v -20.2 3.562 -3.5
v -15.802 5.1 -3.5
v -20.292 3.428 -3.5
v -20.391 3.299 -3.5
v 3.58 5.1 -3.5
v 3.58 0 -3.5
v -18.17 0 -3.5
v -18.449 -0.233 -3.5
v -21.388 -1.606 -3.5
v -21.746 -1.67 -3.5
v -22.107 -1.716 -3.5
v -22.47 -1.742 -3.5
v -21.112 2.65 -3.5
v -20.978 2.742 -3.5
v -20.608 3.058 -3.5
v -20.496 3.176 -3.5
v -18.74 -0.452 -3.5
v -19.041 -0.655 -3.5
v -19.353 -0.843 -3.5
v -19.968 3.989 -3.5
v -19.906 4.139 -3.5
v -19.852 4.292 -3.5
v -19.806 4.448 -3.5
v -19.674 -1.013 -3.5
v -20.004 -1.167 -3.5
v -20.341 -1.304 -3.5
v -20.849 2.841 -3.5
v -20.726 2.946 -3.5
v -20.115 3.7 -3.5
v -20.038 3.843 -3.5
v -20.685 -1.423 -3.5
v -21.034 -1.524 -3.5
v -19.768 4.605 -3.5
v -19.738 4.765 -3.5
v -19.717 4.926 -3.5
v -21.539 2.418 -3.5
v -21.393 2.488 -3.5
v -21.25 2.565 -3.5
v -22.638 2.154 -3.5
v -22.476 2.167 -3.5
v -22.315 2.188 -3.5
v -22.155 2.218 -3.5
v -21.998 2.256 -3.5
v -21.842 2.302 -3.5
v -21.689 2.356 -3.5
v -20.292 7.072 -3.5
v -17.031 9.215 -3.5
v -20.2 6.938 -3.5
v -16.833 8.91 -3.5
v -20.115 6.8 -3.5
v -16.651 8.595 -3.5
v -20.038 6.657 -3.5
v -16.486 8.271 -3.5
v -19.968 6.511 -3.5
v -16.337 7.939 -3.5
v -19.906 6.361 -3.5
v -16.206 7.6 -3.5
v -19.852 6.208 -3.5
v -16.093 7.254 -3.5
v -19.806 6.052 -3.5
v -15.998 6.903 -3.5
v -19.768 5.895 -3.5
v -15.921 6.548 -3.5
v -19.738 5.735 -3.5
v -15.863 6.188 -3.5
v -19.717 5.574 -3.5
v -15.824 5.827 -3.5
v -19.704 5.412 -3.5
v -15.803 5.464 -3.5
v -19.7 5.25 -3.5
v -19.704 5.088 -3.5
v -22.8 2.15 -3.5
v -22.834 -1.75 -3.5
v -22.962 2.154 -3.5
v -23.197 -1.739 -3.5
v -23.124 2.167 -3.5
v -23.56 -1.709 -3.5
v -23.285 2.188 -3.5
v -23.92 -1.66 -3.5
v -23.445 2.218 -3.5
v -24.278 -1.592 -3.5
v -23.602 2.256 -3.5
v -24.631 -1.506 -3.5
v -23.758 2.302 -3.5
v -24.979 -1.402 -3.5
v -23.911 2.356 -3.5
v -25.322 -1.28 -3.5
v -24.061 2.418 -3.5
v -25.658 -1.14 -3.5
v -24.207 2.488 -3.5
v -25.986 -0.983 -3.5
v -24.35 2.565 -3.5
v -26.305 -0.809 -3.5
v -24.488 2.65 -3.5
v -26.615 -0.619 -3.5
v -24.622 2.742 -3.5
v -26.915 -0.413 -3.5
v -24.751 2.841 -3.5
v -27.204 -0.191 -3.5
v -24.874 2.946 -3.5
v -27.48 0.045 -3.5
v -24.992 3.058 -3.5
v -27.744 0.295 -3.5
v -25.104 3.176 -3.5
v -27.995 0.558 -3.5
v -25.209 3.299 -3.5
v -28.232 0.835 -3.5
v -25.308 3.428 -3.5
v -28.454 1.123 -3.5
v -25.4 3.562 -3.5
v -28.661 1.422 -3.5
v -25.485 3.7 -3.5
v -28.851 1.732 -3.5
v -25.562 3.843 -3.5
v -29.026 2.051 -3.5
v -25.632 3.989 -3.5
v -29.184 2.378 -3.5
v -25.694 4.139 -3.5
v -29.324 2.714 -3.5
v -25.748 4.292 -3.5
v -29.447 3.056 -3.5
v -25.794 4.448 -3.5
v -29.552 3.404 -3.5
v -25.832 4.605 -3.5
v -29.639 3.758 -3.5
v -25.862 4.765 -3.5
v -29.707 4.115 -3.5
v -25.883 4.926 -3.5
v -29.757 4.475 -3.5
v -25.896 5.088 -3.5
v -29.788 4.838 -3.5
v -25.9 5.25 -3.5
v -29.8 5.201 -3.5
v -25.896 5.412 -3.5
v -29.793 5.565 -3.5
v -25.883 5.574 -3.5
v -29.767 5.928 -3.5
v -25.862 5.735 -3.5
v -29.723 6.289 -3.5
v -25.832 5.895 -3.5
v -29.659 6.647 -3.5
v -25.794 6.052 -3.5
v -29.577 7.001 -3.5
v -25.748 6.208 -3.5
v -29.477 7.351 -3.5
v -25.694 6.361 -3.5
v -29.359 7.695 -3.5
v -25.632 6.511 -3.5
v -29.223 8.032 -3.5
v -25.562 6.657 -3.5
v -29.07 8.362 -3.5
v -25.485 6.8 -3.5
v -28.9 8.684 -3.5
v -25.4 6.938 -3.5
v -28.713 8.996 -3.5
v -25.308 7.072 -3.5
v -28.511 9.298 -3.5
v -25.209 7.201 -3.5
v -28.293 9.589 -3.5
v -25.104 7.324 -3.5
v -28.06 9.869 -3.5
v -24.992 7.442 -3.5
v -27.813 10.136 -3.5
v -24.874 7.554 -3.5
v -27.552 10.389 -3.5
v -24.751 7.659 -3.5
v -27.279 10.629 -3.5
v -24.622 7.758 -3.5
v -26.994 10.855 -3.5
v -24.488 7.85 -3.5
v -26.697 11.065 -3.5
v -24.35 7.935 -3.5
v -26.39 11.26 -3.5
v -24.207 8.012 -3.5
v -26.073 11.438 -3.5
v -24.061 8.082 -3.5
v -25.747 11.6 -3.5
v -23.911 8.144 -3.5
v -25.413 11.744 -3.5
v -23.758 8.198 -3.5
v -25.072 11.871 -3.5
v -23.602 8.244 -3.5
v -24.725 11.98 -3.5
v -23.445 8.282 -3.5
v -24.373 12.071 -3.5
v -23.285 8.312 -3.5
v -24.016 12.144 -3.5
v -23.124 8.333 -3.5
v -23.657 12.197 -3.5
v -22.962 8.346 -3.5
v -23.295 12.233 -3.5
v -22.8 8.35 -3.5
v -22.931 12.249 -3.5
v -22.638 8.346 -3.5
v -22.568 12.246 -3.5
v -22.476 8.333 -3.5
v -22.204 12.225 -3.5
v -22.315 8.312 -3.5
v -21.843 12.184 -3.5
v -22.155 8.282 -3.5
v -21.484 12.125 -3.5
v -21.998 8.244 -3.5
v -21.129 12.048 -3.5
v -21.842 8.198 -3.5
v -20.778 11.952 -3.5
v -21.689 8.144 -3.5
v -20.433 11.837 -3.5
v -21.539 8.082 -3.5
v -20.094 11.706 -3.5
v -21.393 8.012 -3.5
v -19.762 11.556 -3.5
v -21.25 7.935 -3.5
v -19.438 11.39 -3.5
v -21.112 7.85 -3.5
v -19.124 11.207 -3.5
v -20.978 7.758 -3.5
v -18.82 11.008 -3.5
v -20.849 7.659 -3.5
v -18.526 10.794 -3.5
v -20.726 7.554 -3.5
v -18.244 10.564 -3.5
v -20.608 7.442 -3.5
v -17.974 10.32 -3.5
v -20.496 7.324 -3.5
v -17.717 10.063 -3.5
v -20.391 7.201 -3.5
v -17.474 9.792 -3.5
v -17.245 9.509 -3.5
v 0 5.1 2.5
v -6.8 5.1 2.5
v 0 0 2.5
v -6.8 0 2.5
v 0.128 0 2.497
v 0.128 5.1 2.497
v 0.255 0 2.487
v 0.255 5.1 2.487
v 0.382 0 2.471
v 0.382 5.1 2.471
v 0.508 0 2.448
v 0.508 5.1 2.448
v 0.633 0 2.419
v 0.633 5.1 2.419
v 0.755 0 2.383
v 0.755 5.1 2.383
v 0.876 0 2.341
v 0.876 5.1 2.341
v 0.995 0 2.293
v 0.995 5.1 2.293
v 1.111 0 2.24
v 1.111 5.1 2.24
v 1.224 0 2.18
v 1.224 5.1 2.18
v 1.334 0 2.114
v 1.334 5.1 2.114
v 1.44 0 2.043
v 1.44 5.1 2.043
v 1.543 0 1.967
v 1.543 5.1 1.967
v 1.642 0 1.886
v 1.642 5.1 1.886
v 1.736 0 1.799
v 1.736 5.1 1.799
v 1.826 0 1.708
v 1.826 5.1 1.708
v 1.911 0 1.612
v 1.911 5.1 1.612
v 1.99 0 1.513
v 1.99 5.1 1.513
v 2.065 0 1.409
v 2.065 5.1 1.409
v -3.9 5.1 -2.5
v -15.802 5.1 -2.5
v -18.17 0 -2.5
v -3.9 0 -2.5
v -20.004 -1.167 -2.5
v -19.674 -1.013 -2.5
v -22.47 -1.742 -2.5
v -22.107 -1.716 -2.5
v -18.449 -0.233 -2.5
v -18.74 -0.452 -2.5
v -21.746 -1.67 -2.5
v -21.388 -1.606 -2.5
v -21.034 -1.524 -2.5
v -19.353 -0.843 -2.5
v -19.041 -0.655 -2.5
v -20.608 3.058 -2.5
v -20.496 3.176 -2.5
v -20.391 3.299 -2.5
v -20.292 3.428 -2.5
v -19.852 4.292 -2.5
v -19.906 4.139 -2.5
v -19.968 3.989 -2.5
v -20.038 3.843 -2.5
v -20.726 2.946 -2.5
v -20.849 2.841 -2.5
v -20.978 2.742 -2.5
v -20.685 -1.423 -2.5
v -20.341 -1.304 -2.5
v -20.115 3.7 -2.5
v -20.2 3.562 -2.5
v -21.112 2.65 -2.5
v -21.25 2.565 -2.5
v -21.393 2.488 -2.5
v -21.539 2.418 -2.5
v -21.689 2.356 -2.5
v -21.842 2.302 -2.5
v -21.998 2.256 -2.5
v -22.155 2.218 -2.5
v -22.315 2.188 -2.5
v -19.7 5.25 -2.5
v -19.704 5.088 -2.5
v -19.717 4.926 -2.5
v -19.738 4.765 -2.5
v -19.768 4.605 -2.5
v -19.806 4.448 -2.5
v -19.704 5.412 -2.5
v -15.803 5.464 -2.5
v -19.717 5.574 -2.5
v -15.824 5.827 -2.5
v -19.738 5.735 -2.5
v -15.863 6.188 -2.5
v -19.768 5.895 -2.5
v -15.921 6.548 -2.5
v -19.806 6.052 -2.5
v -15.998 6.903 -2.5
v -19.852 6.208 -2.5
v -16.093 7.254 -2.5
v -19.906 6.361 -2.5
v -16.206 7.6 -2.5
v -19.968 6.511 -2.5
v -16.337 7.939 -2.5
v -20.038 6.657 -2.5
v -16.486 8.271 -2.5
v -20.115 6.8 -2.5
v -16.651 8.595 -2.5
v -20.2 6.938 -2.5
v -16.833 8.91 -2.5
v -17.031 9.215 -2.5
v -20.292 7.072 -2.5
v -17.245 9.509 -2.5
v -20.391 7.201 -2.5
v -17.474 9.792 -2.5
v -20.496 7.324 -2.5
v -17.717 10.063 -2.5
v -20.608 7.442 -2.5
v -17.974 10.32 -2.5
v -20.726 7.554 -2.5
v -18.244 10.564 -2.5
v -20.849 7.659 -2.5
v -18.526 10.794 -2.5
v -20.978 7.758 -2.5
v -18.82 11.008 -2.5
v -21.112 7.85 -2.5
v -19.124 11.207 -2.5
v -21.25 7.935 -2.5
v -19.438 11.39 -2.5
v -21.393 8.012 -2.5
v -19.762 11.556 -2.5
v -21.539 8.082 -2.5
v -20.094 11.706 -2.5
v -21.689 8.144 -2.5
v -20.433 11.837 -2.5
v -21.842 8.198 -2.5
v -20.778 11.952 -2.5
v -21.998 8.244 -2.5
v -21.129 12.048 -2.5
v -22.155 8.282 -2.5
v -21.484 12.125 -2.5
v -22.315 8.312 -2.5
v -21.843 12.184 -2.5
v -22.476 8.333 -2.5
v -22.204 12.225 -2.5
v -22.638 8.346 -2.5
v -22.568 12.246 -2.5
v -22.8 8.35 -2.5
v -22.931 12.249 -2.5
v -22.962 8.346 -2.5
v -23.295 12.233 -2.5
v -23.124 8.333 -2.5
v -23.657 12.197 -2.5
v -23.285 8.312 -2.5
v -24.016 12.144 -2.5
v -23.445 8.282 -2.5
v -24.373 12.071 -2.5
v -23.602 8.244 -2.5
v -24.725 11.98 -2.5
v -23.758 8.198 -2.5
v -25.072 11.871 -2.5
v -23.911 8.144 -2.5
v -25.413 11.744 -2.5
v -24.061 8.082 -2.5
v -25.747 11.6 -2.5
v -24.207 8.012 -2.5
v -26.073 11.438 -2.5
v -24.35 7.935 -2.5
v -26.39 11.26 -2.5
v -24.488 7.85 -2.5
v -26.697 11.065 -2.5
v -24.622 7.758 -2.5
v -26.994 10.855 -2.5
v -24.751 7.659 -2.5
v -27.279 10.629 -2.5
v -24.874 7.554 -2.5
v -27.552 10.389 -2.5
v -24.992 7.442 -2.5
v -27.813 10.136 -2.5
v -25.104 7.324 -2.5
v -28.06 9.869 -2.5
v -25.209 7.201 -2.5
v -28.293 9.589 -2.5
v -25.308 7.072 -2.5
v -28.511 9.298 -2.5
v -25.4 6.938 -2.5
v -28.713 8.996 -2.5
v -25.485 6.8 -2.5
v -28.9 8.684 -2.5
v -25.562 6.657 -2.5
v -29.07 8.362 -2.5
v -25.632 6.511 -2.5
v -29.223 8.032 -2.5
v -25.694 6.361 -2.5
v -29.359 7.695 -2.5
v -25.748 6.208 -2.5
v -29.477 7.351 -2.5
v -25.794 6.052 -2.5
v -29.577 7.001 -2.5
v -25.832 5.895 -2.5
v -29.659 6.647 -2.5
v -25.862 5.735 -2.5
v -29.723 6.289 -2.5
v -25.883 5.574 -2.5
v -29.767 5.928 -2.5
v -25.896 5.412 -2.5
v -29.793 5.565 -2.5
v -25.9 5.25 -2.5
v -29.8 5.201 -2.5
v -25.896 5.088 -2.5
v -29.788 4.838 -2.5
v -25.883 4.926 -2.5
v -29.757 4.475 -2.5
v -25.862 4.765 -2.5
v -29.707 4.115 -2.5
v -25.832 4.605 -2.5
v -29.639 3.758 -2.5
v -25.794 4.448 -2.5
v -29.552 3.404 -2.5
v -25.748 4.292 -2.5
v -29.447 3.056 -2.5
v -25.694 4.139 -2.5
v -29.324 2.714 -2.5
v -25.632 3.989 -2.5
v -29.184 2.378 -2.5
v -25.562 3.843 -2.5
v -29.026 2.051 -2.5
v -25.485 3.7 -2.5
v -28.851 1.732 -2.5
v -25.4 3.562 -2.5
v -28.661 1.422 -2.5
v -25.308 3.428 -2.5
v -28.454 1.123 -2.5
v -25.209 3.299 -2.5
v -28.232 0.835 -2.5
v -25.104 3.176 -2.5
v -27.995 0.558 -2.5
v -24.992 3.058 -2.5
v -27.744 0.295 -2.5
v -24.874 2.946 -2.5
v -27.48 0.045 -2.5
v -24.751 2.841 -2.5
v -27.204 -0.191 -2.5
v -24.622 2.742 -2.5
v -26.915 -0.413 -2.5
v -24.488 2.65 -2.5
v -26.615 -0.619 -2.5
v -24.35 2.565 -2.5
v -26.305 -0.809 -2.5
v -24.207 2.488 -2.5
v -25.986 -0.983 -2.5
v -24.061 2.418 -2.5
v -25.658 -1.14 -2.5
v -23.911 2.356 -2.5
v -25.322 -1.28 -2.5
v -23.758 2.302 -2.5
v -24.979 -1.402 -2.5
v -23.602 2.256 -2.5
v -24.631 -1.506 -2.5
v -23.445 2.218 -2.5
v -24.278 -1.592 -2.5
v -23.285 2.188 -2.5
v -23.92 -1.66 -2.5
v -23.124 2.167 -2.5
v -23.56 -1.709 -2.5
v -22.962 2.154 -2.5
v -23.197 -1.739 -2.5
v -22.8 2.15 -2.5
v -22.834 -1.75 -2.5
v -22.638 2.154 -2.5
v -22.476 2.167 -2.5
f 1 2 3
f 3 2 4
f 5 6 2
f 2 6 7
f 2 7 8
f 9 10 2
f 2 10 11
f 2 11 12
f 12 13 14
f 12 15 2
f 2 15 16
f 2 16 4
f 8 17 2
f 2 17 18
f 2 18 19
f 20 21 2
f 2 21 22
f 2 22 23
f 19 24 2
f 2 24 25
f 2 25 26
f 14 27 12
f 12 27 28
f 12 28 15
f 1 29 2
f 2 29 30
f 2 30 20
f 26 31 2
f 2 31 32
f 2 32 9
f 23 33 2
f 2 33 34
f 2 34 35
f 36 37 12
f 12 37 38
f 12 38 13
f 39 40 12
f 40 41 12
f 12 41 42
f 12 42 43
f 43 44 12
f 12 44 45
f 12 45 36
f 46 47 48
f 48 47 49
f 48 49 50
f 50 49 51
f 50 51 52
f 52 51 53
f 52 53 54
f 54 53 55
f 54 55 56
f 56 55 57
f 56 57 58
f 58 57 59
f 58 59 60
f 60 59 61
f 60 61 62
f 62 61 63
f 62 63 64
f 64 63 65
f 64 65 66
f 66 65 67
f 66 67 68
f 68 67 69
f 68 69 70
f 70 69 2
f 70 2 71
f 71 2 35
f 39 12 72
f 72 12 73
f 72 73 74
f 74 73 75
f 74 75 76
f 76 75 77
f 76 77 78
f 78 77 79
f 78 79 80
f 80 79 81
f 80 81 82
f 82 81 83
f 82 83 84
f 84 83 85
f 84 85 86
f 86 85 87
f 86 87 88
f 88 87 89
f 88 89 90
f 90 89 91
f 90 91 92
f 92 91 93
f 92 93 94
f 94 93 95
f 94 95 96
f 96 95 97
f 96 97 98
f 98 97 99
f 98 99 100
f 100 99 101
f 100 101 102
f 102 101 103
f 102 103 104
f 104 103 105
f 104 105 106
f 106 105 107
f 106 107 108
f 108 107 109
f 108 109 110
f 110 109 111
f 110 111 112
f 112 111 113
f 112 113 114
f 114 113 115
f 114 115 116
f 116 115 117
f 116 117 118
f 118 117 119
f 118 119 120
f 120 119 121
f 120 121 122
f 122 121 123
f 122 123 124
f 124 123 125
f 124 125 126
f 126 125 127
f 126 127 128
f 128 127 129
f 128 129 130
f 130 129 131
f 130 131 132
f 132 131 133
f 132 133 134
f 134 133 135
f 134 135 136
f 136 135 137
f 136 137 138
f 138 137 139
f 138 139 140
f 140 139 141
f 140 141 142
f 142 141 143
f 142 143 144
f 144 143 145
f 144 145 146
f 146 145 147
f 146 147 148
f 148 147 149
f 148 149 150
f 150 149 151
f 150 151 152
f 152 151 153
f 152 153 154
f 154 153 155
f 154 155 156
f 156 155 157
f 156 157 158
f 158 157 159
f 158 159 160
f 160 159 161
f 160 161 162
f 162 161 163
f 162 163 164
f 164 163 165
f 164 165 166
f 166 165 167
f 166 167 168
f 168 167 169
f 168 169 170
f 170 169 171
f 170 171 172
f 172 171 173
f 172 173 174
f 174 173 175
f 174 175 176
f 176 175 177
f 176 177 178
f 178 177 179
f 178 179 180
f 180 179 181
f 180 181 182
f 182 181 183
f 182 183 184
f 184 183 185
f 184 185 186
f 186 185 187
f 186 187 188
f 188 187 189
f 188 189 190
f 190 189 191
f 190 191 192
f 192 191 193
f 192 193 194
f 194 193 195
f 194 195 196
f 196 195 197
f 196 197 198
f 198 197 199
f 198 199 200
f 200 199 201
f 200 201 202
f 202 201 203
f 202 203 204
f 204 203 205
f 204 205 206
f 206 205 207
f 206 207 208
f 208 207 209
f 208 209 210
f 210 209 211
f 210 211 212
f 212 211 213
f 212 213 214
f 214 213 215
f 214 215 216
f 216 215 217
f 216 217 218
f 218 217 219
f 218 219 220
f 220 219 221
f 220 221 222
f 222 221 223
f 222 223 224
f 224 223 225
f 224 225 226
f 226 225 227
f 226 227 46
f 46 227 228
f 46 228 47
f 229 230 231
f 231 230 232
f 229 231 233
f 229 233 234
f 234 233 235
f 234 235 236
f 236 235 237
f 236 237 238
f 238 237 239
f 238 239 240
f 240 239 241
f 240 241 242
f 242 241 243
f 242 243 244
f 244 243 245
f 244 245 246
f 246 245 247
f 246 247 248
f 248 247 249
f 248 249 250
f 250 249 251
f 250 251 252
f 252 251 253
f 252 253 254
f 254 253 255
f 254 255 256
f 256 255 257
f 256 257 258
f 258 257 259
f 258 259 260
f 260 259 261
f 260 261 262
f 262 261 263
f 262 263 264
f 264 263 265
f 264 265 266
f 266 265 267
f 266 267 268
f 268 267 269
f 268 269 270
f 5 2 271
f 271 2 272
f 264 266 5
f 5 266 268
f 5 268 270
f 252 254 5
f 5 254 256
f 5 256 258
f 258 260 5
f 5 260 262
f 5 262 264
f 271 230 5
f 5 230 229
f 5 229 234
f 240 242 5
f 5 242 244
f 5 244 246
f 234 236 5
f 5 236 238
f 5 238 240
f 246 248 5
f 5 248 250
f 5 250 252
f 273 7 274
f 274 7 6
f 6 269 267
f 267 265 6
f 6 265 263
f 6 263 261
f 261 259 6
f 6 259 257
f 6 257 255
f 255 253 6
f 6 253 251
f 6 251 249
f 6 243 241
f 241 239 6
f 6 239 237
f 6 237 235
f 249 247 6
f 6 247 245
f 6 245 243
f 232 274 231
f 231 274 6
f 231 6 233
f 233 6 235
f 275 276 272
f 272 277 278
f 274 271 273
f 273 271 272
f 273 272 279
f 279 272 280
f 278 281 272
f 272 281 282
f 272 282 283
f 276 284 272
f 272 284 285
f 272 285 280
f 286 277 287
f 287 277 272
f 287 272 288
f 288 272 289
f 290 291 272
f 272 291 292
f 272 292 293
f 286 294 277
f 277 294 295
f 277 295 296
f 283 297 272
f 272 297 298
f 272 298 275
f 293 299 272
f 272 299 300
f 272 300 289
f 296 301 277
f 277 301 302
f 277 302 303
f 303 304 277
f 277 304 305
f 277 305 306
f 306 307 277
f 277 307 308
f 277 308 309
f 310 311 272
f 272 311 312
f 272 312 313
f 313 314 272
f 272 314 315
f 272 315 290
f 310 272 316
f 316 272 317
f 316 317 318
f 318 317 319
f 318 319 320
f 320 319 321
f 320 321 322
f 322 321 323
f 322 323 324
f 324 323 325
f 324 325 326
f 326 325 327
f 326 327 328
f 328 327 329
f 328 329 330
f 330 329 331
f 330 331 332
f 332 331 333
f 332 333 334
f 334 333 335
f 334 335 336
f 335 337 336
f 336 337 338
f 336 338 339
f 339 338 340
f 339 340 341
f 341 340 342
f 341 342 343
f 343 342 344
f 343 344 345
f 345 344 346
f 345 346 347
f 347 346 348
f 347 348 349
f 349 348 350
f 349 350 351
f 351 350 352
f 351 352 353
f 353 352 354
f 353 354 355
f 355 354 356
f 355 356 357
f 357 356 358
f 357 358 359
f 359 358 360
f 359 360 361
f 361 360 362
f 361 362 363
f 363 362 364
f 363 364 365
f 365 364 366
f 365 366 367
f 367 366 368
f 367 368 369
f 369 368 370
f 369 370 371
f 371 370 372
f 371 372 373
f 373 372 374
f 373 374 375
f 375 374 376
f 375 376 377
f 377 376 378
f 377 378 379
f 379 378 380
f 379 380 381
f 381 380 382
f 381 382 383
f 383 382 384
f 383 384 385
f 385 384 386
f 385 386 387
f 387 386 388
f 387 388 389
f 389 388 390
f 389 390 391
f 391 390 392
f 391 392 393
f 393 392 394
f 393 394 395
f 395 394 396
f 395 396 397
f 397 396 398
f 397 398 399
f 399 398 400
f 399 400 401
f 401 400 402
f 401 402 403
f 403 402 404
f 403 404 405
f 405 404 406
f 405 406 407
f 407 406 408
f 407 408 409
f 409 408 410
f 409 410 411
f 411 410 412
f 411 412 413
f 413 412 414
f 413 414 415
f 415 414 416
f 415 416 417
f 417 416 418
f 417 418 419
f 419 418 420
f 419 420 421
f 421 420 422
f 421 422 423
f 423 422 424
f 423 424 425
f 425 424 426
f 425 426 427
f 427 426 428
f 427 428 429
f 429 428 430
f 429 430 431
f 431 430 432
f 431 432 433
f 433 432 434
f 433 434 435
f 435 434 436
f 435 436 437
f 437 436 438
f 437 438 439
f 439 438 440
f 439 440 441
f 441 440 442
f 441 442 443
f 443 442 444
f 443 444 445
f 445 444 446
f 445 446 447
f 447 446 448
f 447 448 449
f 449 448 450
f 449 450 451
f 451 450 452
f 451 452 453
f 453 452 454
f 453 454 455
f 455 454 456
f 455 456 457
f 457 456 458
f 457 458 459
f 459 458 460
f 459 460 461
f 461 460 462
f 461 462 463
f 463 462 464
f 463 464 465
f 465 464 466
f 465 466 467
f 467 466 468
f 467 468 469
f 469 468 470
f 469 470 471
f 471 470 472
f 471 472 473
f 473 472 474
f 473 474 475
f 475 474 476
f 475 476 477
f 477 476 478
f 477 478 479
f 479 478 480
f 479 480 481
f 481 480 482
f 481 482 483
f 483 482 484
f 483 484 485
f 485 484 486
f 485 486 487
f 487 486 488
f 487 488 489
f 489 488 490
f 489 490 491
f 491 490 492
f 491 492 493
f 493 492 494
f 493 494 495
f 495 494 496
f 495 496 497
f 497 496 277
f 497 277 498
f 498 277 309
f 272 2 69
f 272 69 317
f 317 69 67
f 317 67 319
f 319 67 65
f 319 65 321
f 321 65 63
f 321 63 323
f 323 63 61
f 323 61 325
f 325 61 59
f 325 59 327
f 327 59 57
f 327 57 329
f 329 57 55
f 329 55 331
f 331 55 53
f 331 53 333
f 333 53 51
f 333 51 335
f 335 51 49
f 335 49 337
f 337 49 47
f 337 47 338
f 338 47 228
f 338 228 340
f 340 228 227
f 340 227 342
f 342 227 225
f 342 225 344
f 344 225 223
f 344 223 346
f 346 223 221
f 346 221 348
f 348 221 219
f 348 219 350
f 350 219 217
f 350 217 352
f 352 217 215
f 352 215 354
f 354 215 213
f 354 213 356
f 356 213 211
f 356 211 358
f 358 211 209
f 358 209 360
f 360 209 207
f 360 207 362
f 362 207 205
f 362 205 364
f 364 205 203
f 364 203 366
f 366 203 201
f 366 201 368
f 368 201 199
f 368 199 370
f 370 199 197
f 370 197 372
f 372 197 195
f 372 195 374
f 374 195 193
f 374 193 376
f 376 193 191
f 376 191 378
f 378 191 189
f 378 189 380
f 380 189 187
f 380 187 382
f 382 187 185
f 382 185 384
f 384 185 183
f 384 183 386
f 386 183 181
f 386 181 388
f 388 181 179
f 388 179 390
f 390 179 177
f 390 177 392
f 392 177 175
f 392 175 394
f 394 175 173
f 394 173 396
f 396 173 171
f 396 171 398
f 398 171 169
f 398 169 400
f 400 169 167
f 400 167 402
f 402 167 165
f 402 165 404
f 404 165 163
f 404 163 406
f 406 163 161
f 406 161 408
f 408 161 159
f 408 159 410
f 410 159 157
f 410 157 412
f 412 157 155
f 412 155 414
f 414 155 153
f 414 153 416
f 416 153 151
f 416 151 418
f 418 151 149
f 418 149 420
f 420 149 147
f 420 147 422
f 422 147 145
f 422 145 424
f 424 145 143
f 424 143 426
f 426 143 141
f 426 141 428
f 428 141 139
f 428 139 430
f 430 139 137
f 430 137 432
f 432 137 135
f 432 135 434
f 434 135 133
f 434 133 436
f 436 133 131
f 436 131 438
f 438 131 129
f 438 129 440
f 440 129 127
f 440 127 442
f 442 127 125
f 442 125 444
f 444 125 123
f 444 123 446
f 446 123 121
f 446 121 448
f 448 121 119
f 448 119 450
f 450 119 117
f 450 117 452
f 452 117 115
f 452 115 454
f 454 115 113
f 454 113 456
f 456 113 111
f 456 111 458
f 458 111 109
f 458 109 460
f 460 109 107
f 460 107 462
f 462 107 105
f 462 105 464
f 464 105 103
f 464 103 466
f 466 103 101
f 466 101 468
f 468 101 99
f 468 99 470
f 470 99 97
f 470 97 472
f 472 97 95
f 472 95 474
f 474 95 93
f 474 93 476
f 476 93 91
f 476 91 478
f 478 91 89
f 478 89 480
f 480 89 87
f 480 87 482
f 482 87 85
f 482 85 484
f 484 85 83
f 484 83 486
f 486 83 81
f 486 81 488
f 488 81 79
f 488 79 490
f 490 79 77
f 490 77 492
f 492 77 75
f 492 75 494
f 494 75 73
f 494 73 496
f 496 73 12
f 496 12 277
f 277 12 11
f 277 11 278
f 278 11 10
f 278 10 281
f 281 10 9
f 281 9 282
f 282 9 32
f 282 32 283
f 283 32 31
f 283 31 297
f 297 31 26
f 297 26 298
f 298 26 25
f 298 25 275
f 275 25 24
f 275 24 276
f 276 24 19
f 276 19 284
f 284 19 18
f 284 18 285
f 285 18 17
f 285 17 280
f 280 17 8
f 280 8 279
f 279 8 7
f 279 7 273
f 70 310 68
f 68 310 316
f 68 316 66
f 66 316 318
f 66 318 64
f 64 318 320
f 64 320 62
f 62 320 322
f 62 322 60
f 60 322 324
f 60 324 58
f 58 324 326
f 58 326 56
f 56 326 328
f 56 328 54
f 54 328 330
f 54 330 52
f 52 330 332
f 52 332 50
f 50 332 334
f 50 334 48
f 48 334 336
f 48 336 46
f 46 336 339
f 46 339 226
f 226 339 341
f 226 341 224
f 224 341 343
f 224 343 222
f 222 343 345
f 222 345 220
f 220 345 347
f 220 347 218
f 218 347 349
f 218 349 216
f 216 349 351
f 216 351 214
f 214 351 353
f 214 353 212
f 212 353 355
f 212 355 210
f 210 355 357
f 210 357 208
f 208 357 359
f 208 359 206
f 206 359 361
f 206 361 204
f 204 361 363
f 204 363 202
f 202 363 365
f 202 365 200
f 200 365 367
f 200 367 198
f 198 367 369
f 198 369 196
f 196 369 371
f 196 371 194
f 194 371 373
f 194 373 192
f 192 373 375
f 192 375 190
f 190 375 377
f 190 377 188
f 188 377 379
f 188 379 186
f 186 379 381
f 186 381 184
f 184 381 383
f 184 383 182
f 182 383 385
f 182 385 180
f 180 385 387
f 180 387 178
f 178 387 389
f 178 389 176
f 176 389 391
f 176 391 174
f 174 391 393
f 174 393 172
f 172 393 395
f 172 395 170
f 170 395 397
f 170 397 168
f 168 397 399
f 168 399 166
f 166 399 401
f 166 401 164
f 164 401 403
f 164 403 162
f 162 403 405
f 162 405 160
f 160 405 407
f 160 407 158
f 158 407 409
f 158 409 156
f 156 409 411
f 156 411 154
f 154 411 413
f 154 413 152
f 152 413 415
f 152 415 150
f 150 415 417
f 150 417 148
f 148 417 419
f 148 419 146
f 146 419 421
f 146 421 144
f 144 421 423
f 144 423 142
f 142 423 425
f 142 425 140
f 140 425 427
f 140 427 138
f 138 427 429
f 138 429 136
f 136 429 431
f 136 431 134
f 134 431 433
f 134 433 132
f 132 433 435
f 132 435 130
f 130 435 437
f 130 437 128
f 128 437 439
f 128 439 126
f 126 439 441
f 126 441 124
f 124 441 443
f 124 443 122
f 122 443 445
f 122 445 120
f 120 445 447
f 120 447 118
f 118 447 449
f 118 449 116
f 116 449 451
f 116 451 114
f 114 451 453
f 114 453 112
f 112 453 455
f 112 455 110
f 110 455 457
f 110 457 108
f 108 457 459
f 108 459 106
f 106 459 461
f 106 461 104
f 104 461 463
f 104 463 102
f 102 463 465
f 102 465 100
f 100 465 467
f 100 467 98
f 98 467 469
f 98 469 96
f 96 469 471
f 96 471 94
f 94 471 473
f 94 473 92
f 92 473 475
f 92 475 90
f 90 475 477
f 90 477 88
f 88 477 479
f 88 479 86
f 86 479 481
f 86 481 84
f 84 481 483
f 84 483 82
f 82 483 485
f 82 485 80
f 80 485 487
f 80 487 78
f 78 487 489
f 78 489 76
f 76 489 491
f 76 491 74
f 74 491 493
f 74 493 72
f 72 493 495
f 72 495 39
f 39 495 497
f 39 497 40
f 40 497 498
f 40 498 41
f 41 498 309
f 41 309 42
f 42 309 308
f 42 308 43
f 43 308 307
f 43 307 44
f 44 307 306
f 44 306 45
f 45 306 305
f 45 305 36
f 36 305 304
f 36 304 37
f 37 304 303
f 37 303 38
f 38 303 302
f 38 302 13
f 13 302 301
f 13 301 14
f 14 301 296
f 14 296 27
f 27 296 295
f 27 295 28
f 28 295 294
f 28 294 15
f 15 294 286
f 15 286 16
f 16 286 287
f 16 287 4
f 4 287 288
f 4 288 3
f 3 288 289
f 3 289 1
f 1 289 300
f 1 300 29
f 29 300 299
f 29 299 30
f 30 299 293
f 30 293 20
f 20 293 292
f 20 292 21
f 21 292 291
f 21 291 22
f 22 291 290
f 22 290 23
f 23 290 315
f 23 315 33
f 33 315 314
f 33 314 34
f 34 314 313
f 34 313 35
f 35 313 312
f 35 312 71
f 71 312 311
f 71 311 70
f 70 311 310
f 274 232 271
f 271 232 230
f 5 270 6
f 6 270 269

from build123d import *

# Parameters (mm, degrees)
BOSS_EXTRUDE1_DEPTH     = 5.1
SKETCH4_W               = 1
SKETCH4_H               = 5.1
BOSS_EXTRUDE2_DEPTH     = 18.9
SKETCH5_R               = 7
BOSS_EXTRUDE3_DEPTH     = 1
CUT_EXTRUDE1_DEPTH      = 33.605252644
CUT_EXTRUDE1_DEPTH_BACK = 33.605252644
SKETCH6_R               = 3.1
BOSS_EXTRUDE4_DEPTH     = 5.1
CUT_EXTRUDE2_DEPTH      = 10
BOSS_EXTRUDE5_DEPTH     = 5.1


with BuildPart() as part:
    # Sketch3 → Boss-Extrude1 (new body)
    with BuildSketch(Plane(origin=(0, 0, 0), x_dir=(1, 0, 0), z_dir=(0, 1, 0))):
        with BuildLine():
            Line((0, -2.5), (-3.9, -2.5))
            Line((-3.9, -2.5), (-3.9, 3.5))
            Line((-3.9, 3.5), (-1, 3.5))
            ThreePointArc((-1, 3.5), (1.474873734, 2.474873734), (2.5, 0))
            ThreePointArc((2.5, 0), (1.767766953, -1.767766953), (0, -2.5))
        make_face()
    extrude(amount=BOSS_EXTRUDE1_DEPTH)

    # Sketch4 → Boss-Extrude2 (add)
    with BuildSketch(Plane.ZY.offset(3.9)):
        with Locations((-3, 2.55)):
            Rectangle(SKETCH4_W, SKETCH4_H)
    extrude(amount=BOSS_EXTRUDE2_DEPTH)

    # Sketch5 → Boss-Extrude3 (add)
    with BuildSketch(Plane(origin=(0, 0, -3.5), x_dir=(-1, 0, 0), z_dir=(0, 0, -1))):
        with Locations((22.8, 5.25)):
            Circle(SKETCH5_R)
    extrude(amount=-BOSS_EXTRUDE3_DEPTH)

    # Sketch6 → Cut-Extrude1 (cut, two sides: drawn at the far end of the back side and taken through both)
    with BuildSketch(Plane.XY.offset(-2.5).offset(-CUT_EXTRUDE1_DEPTH_BACK)):
        with Locations((-22.8, 5.25)):
            Circle(SKETCH6_R)
    extrude(amount=CUT_EXTRUDE1_DEPTH + CUT_EXTRUDE1_DEPTH_BACK, mode=Mode.SUBTRACT)

    # Sketch7 → Boss-Extrude4 (add)
    with BuildSketch(Plane.XZ):
        Polygon((-3.9, -2.5), (-3.9, 2.5), (-6.8, 2.5), align=None)
    extrude(amount=-BOSS_EXTRUDE4_DEPTH)

    # Sketch8 → Cut-Extrude2 (cut)
    with BuildSketch(Plane(origin=(0, 5.1, 0), x_dir=(1, 0, 0), z_dir=(0, 1, 0))):
        Polygon((2.5, 0), (0.957021589, -5), (5.957021589, -5), (5.957021589, 0), align=None)
    extrude(amount=-CUT_EXTRUDE2_DEPTH, mode=Mode.SUBTRACT)

    # Sketch9 → Boss-Extrude5 (add)
    with BuildSketch(Plane(origin=(0, 0, 0), x_dir=(1, 0, 0), z_dir=(0, 1, 0))):
        Polygon((2.5, 0), (3.580084888, 3.5), (-1, 3.5), align=None)
    extrude(amount=BOSS_EXTRUDE5_DEPTH)


solid = part.part
